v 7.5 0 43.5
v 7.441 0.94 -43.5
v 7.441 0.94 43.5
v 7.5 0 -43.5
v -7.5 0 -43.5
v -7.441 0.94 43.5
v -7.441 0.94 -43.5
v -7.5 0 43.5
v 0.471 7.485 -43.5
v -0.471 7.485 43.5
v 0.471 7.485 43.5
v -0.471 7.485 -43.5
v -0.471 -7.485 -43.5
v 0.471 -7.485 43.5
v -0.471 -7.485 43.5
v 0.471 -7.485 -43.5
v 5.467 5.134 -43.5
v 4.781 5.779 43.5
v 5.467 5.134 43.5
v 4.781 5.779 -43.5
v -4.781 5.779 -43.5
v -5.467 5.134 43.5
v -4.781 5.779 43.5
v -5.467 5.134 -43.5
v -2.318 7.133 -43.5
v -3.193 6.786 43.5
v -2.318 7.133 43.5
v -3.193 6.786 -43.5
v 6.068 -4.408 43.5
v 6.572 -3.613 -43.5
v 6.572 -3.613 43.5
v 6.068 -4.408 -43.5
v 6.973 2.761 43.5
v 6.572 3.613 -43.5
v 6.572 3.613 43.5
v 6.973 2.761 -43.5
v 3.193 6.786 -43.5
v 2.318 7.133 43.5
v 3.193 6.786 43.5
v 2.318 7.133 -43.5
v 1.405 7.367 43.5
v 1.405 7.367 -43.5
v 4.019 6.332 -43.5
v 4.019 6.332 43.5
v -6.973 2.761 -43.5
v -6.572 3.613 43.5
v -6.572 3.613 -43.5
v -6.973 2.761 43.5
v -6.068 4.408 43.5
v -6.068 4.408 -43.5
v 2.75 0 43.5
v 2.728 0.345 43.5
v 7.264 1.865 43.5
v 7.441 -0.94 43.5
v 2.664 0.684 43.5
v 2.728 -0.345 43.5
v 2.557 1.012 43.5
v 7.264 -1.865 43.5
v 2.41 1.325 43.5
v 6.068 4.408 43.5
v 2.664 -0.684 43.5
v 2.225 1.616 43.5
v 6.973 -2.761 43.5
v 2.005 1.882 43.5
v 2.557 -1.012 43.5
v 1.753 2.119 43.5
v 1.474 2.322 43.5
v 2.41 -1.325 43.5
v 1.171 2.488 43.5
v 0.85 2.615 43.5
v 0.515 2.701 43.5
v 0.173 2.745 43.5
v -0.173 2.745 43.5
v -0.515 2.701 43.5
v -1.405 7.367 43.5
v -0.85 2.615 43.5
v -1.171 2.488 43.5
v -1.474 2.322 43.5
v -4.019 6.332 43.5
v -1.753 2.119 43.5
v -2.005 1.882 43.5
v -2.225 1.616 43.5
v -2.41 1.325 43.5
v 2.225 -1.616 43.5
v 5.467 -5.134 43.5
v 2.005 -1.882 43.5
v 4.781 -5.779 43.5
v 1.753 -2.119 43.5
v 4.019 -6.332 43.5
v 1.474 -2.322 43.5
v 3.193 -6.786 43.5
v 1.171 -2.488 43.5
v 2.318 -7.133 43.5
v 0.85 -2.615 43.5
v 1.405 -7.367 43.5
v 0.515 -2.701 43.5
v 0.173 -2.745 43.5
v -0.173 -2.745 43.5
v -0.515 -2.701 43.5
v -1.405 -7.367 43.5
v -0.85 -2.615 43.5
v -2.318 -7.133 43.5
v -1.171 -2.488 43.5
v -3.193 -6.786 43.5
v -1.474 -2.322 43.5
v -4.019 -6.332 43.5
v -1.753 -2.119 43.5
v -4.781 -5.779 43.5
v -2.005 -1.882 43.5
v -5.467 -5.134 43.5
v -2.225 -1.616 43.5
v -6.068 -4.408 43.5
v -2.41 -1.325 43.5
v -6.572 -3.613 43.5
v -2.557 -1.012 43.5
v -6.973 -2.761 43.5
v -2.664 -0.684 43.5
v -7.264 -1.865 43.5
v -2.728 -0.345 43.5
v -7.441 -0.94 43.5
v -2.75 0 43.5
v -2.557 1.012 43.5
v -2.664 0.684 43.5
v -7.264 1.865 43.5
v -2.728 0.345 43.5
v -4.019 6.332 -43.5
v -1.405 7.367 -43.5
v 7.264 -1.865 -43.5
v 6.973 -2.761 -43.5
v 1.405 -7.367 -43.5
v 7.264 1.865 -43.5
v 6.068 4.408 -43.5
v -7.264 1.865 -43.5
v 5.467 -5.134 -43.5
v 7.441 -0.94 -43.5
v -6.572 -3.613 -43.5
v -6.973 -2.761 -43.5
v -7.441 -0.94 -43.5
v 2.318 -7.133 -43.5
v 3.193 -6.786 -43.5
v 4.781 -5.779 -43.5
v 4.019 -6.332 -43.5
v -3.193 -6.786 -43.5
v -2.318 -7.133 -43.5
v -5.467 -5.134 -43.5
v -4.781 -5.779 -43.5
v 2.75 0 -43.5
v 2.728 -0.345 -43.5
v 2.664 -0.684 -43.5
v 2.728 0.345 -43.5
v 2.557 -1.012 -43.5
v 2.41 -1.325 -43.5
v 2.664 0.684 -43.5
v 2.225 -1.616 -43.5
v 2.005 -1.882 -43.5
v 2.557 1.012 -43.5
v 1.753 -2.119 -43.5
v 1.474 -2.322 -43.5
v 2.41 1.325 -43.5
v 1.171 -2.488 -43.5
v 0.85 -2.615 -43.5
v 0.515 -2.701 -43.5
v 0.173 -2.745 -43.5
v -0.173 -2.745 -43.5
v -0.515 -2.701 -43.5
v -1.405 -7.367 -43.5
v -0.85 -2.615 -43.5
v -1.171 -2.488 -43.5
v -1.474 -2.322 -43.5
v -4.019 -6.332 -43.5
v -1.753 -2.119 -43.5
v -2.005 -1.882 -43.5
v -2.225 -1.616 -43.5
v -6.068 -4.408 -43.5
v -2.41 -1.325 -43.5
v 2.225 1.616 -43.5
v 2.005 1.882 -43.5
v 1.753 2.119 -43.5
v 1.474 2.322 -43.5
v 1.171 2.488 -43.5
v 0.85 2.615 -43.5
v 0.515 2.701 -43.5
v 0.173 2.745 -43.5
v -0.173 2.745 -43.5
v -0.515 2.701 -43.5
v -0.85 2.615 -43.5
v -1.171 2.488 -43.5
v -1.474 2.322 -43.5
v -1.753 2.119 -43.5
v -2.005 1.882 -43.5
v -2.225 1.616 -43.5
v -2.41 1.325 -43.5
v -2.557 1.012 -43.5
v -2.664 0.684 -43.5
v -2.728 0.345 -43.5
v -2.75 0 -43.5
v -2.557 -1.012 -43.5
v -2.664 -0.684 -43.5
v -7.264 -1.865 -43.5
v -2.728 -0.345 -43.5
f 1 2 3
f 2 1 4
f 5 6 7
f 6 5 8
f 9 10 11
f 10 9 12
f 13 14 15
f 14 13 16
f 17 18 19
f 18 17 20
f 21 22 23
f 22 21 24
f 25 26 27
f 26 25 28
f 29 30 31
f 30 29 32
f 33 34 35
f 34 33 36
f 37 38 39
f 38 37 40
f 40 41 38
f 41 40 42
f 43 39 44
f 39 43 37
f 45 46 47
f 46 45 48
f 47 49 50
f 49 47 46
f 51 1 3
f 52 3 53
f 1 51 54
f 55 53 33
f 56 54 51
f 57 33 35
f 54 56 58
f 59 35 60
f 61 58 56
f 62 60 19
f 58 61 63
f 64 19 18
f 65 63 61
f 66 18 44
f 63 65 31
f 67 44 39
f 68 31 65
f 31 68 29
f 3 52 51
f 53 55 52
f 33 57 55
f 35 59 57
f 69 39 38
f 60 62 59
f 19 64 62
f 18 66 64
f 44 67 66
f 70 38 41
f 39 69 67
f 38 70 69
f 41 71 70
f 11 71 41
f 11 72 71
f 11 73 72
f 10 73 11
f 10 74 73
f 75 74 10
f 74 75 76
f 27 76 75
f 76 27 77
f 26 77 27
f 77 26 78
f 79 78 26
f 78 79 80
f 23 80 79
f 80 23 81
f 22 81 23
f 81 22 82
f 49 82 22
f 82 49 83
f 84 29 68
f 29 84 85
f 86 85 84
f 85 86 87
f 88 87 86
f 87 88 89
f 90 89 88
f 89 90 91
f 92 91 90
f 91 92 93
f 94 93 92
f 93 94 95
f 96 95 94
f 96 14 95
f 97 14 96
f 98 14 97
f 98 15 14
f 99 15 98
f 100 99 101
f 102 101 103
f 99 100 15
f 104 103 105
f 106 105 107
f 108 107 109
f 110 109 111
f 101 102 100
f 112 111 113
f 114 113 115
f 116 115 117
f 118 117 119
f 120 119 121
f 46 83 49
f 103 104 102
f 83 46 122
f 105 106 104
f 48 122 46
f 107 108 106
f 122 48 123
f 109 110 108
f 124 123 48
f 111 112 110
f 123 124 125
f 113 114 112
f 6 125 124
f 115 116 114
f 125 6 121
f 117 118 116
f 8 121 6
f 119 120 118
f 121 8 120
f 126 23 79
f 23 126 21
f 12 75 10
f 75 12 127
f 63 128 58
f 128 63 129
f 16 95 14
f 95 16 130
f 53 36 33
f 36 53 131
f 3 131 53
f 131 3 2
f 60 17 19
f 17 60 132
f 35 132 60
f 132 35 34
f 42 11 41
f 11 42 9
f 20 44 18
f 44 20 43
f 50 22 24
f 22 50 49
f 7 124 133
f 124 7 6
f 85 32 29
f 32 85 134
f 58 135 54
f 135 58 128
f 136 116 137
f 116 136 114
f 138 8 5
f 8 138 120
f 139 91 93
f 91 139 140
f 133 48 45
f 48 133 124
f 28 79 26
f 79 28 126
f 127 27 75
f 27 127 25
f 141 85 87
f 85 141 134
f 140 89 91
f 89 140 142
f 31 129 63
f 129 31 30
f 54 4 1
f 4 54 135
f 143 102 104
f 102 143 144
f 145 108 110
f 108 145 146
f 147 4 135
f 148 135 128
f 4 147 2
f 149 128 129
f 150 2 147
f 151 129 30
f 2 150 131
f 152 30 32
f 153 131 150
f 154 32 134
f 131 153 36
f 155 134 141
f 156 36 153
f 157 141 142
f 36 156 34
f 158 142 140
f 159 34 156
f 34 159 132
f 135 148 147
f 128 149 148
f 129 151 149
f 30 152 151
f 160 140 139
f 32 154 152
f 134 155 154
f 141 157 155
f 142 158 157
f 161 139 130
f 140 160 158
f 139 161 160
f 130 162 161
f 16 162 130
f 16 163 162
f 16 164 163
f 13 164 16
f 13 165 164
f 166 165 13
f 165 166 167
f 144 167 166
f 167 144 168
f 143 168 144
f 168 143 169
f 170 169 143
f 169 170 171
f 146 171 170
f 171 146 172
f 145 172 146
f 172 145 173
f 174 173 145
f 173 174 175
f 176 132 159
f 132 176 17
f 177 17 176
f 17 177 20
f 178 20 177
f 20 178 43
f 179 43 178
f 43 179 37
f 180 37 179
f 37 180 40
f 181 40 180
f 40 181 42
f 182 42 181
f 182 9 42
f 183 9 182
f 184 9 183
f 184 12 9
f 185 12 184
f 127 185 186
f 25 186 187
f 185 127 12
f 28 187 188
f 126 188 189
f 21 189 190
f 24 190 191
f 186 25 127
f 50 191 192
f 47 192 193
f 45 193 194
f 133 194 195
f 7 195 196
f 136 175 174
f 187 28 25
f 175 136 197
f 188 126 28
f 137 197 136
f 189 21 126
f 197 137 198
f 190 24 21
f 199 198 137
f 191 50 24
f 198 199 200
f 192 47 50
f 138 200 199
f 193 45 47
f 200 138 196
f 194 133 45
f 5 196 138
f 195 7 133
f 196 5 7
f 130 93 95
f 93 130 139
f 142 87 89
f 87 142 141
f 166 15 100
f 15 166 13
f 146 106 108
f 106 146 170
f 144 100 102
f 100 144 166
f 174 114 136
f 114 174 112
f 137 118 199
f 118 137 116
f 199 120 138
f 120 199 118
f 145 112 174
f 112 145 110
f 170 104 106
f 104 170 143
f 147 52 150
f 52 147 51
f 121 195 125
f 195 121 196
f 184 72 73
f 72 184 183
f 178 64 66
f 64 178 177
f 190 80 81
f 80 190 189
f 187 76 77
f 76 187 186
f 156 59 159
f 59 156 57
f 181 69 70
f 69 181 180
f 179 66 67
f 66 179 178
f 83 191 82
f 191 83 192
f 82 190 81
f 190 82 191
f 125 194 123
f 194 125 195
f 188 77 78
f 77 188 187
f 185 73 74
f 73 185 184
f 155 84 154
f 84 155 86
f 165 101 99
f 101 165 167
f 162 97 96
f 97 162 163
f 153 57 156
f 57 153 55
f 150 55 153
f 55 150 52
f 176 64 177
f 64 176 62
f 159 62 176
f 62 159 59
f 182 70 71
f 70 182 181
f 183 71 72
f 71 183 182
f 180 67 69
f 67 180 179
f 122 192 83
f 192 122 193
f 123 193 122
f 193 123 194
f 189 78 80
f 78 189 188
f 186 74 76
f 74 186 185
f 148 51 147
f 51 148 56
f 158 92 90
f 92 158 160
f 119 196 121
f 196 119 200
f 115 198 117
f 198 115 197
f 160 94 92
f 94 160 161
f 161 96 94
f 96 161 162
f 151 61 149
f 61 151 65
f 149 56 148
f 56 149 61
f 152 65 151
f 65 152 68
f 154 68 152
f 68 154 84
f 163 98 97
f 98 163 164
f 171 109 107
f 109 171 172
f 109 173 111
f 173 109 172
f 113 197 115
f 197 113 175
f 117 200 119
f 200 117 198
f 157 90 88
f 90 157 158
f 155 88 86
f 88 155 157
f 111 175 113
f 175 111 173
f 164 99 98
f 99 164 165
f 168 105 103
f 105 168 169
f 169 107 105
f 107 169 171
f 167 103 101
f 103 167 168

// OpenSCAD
$fn = 50;


difference() {
	union() {
		translate(v = [0, 0, -43.5000000000]) {
			cylinder(h = 87, r = 7.5000000000);
		}
	}
	union() {
		translate(v = [0, 0, -100.0000000000]) {
			cylinder(h = 200, r = 2.7500000000);
		}
	}
}
